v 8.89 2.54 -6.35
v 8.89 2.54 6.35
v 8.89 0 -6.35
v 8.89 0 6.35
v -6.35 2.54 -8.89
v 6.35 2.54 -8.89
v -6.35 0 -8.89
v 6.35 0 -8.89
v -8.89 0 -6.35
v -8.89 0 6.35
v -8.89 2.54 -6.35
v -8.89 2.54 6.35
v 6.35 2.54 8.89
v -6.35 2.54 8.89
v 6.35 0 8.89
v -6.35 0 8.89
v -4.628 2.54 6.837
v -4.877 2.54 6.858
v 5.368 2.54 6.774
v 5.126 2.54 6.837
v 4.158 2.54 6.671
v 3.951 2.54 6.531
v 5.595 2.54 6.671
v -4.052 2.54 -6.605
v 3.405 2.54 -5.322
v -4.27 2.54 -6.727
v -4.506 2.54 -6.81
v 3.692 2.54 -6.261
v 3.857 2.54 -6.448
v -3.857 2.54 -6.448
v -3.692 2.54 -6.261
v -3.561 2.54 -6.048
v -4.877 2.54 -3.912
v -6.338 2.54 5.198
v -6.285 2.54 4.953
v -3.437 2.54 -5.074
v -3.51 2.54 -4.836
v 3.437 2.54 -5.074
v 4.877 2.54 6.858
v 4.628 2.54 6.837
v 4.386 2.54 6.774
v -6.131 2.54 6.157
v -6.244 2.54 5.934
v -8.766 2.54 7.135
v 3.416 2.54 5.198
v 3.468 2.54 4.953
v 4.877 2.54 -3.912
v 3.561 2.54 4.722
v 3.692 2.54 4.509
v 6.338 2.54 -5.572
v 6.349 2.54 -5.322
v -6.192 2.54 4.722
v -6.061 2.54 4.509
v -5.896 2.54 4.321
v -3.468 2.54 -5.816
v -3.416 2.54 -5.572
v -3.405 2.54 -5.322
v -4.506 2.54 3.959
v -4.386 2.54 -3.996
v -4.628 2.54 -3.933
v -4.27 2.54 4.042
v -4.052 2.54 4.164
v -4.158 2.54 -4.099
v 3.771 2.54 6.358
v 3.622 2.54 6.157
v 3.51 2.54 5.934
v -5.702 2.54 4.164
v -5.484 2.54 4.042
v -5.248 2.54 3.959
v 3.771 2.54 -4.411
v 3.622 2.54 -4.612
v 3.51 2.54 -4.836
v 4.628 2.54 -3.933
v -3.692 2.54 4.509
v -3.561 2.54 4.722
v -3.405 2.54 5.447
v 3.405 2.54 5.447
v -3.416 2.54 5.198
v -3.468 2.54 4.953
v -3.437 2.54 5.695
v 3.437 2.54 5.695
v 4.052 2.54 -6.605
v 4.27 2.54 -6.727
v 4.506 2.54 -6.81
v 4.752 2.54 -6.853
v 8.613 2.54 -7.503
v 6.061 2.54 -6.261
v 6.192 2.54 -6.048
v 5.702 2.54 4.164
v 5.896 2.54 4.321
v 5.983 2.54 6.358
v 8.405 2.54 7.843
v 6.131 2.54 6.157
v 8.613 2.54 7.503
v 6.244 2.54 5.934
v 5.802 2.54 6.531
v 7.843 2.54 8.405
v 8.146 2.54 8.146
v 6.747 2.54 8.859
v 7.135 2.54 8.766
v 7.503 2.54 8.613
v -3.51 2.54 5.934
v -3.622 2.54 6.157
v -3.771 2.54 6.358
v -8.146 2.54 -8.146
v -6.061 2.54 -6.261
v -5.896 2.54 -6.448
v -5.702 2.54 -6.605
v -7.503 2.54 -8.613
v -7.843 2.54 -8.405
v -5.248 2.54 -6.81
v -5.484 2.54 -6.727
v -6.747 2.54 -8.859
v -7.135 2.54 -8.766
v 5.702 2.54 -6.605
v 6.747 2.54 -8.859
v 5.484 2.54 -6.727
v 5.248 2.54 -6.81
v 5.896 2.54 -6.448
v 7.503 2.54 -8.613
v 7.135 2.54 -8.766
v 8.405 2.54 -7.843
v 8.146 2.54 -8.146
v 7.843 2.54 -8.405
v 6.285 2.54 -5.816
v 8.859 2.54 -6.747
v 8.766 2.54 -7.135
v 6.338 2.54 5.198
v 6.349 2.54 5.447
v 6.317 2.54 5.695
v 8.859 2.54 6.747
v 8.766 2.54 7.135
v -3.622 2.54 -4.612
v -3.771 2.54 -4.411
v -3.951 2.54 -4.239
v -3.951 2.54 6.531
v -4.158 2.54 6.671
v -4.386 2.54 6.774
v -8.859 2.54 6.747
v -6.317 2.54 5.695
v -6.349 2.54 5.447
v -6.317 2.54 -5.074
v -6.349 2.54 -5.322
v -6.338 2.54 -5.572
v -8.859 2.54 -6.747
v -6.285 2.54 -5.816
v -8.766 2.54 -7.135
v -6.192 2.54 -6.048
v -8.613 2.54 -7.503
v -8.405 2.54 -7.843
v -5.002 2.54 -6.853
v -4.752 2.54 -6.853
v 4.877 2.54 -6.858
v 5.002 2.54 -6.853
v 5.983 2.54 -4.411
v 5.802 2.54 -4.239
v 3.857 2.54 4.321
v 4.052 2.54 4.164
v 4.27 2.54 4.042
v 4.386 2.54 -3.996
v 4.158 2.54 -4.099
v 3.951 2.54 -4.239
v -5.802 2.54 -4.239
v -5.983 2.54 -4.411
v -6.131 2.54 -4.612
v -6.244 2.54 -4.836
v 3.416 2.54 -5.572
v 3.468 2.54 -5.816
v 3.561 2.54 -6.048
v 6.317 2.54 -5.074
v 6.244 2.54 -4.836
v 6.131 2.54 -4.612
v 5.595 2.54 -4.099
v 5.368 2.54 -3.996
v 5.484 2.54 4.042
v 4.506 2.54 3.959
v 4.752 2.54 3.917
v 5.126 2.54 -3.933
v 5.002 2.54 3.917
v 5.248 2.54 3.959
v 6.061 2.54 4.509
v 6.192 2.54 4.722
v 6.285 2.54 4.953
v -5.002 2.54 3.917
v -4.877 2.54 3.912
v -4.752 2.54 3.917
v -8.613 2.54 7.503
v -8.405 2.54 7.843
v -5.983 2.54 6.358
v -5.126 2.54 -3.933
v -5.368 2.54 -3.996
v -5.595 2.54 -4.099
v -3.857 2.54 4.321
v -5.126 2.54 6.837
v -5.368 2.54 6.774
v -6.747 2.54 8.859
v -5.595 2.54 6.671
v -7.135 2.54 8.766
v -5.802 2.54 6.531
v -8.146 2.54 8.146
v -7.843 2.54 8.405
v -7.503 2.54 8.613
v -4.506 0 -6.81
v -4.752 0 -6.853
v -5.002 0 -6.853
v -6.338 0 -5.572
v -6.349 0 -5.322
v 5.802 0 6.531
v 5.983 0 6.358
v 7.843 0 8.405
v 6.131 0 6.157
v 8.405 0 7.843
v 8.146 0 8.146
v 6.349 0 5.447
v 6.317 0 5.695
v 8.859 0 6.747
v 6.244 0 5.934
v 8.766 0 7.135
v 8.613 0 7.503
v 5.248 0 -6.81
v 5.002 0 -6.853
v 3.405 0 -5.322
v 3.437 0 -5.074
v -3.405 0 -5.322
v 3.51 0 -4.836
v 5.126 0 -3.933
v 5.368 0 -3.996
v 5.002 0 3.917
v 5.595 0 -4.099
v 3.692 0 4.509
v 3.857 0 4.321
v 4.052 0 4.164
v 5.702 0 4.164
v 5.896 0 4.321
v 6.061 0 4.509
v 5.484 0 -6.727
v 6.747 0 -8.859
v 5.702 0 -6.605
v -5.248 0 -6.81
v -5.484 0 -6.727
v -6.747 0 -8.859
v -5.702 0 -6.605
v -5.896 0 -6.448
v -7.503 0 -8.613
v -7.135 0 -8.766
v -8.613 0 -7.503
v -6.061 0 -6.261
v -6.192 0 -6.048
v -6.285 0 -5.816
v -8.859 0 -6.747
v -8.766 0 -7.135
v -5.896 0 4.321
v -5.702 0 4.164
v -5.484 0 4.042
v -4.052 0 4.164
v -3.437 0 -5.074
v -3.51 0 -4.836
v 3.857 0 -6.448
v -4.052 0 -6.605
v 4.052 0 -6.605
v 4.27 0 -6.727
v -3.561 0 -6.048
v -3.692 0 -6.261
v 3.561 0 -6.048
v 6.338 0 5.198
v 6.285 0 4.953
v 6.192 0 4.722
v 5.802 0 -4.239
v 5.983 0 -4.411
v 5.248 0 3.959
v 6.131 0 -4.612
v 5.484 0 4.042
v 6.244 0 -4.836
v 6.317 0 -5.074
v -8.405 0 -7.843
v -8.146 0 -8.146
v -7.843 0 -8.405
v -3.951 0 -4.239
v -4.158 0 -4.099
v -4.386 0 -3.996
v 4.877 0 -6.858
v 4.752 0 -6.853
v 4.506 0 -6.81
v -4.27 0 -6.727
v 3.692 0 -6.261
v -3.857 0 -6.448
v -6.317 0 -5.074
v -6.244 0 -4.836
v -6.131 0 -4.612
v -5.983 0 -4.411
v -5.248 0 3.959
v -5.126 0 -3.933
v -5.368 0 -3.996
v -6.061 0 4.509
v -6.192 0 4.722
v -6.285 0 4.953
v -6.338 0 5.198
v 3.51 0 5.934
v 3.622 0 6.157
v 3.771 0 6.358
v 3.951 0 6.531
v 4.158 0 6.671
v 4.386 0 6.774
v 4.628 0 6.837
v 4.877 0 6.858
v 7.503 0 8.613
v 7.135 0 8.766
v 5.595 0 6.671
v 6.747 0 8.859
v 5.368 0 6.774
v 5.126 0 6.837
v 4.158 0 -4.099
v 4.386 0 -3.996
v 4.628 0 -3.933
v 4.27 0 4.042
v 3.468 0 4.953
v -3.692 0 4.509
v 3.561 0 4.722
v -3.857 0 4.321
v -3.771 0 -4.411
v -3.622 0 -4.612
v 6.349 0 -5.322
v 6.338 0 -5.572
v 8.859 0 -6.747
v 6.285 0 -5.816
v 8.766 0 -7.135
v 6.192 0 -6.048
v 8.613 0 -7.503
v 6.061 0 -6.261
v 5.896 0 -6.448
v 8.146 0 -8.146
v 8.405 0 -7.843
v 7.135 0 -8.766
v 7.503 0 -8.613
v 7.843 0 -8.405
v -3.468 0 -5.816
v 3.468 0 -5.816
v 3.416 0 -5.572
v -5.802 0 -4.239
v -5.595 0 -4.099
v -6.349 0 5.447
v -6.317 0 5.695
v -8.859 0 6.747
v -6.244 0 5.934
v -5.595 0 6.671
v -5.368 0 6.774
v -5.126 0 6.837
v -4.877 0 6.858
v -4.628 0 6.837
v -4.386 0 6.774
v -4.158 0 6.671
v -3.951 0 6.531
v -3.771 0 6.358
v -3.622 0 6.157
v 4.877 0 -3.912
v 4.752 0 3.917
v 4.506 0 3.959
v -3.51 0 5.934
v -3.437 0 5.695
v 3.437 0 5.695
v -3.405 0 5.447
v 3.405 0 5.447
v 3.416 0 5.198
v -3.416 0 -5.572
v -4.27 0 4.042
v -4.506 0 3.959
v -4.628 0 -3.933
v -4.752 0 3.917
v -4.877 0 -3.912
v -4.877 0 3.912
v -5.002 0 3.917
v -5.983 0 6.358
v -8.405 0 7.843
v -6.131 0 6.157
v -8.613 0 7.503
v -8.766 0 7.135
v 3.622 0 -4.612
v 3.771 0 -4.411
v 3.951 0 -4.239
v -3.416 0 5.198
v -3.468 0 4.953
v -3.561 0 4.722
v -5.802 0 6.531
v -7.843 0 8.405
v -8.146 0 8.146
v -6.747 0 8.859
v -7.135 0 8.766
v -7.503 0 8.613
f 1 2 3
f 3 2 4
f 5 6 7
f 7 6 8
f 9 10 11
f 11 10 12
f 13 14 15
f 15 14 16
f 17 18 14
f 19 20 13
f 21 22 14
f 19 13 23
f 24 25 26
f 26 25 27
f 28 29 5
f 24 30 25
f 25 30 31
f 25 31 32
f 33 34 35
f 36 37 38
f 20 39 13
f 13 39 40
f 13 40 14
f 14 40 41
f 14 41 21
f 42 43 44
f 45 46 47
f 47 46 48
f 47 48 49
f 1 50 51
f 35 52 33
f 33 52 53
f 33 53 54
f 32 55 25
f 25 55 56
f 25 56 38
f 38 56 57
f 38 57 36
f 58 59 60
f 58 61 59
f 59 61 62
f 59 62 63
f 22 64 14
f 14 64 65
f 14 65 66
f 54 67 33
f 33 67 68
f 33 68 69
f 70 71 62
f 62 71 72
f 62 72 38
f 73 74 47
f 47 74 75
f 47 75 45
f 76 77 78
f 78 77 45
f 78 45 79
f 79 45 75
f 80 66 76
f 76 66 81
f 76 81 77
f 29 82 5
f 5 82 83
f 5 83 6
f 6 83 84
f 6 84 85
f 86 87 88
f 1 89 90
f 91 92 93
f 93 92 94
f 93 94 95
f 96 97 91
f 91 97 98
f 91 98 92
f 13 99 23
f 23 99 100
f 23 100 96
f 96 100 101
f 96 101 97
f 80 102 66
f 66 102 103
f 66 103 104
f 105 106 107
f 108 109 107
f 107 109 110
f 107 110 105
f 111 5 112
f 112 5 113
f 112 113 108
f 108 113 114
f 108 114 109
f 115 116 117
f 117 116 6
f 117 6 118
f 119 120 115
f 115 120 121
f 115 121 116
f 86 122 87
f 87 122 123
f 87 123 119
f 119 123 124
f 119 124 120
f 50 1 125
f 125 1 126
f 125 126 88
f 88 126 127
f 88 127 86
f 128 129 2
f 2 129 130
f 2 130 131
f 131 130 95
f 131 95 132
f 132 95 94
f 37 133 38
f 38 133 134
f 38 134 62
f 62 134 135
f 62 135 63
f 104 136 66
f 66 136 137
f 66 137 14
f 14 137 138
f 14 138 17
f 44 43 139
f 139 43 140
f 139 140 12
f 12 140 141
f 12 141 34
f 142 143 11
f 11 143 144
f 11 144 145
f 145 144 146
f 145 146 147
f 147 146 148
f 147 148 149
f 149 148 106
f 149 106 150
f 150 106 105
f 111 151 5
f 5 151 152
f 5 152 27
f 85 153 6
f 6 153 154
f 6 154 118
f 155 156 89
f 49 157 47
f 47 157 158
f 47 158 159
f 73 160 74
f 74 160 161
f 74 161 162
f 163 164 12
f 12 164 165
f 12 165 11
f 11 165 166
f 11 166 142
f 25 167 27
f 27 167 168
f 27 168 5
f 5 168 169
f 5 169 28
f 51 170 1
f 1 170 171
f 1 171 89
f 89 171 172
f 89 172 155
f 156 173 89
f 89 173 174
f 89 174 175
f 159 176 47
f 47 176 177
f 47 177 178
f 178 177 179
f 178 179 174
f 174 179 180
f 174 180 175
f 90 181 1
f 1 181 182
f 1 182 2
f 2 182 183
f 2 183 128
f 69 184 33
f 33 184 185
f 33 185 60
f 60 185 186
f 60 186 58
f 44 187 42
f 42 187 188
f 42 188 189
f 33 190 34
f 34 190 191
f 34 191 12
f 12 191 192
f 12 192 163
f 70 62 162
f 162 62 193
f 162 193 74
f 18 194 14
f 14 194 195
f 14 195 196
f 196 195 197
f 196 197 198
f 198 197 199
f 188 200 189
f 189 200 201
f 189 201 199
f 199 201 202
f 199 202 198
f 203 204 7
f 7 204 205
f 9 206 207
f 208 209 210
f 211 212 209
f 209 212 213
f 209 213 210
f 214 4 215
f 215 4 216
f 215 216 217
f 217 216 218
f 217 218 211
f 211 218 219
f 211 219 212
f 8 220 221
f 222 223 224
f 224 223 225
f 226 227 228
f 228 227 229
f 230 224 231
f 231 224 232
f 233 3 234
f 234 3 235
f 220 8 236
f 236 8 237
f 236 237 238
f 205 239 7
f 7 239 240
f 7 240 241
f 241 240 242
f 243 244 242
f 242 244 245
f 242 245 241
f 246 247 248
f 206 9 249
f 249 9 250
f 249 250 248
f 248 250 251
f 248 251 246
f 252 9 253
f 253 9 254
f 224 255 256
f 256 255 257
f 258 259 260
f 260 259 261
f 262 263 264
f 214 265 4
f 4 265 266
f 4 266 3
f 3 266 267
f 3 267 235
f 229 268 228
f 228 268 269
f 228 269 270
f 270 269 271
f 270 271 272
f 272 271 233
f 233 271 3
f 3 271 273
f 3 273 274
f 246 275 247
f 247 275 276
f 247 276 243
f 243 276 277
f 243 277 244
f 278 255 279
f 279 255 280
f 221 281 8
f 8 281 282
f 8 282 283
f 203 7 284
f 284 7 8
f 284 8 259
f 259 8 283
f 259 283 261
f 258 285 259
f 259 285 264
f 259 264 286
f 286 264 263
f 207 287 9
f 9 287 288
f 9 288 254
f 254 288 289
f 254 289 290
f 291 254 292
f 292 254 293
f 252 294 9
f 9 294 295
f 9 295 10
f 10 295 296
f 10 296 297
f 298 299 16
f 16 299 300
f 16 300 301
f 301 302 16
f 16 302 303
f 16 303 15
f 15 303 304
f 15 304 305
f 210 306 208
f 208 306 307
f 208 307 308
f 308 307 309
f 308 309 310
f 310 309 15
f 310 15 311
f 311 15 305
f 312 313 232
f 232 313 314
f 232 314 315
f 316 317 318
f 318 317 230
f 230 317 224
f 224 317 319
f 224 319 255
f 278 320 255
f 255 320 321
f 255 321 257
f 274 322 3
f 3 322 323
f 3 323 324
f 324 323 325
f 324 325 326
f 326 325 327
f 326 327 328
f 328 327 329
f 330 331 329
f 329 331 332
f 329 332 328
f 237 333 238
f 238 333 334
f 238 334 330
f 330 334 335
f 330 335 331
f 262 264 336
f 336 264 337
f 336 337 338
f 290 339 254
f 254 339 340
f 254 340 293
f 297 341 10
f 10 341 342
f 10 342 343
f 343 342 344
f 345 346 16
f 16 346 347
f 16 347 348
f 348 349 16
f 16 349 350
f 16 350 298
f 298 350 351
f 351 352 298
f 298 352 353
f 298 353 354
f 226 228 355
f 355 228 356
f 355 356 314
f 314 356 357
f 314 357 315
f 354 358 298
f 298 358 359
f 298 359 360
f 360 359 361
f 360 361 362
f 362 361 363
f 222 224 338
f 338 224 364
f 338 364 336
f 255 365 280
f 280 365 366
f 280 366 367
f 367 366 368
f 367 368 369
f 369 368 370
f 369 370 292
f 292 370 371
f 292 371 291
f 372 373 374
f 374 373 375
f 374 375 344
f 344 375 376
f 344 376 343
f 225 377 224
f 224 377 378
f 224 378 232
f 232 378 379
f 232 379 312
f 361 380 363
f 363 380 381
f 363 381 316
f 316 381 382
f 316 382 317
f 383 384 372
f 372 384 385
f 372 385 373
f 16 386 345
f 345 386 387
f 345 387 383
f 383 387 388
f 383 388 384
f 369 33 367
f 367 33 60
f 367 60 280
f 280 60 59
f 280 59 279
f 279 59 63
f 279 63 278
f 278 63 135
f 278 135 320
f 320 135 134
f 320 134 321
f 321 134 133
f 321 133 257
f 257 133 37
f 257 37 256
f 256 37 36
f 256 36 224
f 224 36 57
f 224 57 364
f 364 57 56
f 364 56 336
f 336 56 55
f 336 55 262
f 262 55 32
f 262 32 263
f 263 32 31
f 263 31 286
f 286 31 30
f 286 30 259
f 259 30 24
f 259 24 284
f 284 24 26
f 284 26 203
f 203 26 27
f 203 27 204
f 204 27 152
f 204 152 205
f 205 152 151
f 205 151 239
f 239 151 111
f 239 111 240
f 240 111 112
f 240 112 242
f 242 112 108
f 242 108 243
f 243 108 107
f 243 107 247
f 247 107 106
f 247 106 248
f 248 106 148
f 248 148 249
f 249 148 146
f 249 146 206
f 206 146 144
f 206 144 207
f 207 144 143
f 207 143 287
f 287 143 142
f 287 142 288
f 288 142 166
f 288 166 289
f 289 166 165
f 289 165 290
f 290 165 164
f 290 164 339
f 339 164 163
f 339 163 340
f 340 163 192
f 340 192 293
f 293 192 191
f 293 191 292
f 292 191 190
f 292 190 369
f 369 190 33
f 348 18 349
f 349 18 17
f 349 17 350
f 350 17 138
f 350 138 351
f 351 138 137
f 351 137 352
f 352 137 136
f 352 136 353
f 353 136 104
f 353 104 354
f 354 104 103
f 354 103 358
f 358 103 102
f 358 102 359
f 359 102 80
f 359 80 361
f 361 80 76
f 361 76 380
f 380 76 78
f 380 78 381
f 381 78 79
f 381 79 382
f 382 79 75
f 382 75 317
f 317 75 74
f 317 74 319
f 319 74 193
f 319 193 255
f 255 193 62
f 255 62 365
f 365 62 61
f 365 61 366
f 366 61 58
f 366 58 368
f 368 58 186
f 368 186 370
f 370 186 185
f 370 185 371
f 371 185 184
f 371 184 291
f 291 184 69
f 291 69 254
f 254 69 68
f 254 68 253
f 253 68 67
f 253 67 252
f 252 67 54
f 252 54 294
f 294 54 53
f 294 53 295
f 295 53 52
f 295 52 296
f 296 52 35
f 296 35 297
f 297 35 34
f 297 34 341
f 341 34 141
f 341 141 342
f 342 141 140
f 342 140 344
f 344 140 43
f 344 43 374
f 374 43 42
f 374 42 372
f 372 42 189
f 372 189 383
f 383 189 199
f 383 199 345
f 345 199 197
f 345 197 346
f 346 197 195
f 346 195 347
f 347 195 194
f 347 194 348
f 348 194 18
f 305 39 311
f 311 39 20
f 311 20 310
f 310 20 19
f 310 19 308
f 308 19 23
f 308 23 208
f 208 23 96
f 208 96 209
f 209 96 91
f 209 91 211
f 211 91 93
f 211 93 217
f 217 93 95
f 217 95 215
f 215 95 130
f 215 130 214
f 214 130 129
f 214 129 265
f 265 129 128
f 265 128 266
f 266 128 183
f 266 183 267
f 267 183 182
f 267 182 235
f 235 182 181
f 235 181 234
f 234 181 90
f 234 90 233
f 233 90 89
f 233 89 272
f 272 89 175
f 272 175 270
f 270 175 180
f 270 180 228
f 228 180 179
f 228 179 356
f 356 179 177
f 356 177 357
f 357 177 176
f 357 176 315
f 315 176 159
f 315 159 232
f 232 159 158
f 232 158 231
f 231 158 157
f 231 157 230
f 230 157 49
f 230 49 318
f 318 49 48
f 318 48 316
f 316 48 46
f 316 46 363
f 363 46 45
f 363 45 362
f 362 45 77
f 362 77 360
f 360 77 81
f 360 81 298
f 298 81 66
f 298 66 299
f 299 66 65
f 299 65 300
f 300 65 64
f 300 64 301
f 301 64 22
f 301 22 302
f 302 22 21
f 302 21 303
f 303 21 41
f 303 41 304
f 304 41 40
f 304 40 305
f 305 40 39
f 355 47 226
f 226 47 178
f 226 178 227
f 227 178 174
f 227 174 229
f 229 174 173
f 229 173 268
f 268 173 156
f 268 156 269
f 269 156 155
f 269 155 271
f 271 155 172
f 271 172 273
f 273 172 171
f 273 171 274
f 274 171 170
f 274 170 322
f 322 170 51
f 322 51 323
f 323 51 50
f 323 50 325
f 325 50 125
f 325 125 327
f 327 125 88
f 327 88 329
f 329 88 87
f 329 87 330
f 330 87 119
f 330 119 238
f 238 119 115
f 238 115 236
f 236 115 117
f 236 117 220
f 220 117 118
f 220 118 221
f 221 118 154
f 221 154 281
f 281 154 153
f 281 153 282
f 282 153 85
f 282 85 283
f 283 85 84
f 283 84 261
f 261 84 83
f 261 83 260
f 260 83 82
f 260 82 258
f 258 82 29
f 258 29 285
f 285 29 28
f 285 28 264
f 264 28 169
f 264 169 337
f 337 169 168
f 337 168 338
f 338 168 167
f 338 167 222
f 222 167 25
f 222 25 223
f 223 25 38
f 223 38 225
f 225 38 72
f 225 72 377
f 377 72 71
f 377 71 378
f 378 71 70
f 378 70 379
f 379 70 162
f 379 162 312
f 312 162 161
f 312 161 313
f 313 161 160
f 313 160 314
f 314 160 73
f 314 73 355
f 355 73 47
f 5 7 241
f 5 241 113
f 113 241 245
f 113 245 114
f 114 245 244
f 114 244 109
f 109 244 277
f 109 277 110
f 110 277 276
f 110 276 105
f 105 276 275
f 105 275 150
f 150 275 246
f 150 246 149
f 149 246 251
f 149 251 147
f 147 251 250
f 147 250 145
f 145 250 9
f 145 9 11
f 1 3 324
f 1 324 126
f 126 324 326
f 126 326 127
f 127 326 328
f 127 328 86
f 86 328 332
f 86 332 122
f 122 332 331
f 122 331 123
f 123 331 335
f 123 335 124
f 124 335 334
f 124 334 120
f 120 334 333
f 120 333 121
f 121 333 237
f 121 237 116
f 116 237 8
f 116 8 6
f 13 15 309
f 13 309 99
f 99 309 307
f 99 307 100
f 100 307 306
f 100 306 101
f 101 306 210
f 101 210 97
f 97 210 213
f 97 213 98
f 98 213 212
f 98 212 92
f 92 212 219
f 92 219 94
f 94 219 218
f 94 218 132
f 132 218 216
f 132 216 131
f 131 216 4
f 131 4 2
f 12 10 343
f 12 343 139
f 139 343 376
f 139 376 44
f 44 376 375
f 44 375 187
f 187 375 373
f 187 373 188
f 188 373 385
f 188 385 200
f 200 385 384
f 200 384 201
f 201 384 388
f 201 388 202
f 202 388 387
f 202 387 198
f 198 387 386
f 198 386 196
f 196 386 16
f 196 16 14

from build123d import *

# Parameters (mm, degrees)
SKETCH1_W           = 17.78
SKETCH1_H           = 17.78
BOSS_EXTRUDE1_DEPTH = 2.54
SKETCH2_R           = 1.4732
CUT_EXTRUDE1_DEPTH  = 3.54
FILLET1_R           = 2.54


with BuildPart() as part:
    # Sketch1 → Boss-Extrude1 (new body)
    with BuildSketch(Plane(origin=(0, 0, 0), x_dir=(1, 0, 0), z_dir=(0, 1, 0))):
        Rectangle(SKETCH1_W, SKETCH1_H)
    extrude(amount=BOSS_EXTRUDE1_DEPTH)

    # Sketch2 → Cut-Extrude1 (cut, through all)
    with BuildSketch(Plane(origin=(0, 2.54, 0), x_dir=(1, 0, 0), z_dir=(0, 1, 0))):
        with Locations((-4.8768, 5.3848)):
            Circle(SKETCH2_R)
        with Locations((-4.8768, -5.3848)):
            Circle(SKETCH2_R)
        with Locations((4.8768, -5.3848)):
            Circle(SKETCH2_R)
        with Locations((4.8768, 5.3848)):
            Circle(SKETCH2_R)
    extrude(amount=-CUT_EXTRUDE1_DEPTH, mode=Mode.SUBTRACT)

    # Fillet1
    fillet1_edges = [part.edges().sort_by_distance(p)[0] for p in [
        (8.89, 1.27, 8.89),
        (-8.89, 1.27, 8.89),
        (-8.89, 1.27, -8.89),
        (8.89, 1.27, -8.89),
    ]]
    fillet(fillet1_edges, radius=FILLET1_R)


solid = part.part
